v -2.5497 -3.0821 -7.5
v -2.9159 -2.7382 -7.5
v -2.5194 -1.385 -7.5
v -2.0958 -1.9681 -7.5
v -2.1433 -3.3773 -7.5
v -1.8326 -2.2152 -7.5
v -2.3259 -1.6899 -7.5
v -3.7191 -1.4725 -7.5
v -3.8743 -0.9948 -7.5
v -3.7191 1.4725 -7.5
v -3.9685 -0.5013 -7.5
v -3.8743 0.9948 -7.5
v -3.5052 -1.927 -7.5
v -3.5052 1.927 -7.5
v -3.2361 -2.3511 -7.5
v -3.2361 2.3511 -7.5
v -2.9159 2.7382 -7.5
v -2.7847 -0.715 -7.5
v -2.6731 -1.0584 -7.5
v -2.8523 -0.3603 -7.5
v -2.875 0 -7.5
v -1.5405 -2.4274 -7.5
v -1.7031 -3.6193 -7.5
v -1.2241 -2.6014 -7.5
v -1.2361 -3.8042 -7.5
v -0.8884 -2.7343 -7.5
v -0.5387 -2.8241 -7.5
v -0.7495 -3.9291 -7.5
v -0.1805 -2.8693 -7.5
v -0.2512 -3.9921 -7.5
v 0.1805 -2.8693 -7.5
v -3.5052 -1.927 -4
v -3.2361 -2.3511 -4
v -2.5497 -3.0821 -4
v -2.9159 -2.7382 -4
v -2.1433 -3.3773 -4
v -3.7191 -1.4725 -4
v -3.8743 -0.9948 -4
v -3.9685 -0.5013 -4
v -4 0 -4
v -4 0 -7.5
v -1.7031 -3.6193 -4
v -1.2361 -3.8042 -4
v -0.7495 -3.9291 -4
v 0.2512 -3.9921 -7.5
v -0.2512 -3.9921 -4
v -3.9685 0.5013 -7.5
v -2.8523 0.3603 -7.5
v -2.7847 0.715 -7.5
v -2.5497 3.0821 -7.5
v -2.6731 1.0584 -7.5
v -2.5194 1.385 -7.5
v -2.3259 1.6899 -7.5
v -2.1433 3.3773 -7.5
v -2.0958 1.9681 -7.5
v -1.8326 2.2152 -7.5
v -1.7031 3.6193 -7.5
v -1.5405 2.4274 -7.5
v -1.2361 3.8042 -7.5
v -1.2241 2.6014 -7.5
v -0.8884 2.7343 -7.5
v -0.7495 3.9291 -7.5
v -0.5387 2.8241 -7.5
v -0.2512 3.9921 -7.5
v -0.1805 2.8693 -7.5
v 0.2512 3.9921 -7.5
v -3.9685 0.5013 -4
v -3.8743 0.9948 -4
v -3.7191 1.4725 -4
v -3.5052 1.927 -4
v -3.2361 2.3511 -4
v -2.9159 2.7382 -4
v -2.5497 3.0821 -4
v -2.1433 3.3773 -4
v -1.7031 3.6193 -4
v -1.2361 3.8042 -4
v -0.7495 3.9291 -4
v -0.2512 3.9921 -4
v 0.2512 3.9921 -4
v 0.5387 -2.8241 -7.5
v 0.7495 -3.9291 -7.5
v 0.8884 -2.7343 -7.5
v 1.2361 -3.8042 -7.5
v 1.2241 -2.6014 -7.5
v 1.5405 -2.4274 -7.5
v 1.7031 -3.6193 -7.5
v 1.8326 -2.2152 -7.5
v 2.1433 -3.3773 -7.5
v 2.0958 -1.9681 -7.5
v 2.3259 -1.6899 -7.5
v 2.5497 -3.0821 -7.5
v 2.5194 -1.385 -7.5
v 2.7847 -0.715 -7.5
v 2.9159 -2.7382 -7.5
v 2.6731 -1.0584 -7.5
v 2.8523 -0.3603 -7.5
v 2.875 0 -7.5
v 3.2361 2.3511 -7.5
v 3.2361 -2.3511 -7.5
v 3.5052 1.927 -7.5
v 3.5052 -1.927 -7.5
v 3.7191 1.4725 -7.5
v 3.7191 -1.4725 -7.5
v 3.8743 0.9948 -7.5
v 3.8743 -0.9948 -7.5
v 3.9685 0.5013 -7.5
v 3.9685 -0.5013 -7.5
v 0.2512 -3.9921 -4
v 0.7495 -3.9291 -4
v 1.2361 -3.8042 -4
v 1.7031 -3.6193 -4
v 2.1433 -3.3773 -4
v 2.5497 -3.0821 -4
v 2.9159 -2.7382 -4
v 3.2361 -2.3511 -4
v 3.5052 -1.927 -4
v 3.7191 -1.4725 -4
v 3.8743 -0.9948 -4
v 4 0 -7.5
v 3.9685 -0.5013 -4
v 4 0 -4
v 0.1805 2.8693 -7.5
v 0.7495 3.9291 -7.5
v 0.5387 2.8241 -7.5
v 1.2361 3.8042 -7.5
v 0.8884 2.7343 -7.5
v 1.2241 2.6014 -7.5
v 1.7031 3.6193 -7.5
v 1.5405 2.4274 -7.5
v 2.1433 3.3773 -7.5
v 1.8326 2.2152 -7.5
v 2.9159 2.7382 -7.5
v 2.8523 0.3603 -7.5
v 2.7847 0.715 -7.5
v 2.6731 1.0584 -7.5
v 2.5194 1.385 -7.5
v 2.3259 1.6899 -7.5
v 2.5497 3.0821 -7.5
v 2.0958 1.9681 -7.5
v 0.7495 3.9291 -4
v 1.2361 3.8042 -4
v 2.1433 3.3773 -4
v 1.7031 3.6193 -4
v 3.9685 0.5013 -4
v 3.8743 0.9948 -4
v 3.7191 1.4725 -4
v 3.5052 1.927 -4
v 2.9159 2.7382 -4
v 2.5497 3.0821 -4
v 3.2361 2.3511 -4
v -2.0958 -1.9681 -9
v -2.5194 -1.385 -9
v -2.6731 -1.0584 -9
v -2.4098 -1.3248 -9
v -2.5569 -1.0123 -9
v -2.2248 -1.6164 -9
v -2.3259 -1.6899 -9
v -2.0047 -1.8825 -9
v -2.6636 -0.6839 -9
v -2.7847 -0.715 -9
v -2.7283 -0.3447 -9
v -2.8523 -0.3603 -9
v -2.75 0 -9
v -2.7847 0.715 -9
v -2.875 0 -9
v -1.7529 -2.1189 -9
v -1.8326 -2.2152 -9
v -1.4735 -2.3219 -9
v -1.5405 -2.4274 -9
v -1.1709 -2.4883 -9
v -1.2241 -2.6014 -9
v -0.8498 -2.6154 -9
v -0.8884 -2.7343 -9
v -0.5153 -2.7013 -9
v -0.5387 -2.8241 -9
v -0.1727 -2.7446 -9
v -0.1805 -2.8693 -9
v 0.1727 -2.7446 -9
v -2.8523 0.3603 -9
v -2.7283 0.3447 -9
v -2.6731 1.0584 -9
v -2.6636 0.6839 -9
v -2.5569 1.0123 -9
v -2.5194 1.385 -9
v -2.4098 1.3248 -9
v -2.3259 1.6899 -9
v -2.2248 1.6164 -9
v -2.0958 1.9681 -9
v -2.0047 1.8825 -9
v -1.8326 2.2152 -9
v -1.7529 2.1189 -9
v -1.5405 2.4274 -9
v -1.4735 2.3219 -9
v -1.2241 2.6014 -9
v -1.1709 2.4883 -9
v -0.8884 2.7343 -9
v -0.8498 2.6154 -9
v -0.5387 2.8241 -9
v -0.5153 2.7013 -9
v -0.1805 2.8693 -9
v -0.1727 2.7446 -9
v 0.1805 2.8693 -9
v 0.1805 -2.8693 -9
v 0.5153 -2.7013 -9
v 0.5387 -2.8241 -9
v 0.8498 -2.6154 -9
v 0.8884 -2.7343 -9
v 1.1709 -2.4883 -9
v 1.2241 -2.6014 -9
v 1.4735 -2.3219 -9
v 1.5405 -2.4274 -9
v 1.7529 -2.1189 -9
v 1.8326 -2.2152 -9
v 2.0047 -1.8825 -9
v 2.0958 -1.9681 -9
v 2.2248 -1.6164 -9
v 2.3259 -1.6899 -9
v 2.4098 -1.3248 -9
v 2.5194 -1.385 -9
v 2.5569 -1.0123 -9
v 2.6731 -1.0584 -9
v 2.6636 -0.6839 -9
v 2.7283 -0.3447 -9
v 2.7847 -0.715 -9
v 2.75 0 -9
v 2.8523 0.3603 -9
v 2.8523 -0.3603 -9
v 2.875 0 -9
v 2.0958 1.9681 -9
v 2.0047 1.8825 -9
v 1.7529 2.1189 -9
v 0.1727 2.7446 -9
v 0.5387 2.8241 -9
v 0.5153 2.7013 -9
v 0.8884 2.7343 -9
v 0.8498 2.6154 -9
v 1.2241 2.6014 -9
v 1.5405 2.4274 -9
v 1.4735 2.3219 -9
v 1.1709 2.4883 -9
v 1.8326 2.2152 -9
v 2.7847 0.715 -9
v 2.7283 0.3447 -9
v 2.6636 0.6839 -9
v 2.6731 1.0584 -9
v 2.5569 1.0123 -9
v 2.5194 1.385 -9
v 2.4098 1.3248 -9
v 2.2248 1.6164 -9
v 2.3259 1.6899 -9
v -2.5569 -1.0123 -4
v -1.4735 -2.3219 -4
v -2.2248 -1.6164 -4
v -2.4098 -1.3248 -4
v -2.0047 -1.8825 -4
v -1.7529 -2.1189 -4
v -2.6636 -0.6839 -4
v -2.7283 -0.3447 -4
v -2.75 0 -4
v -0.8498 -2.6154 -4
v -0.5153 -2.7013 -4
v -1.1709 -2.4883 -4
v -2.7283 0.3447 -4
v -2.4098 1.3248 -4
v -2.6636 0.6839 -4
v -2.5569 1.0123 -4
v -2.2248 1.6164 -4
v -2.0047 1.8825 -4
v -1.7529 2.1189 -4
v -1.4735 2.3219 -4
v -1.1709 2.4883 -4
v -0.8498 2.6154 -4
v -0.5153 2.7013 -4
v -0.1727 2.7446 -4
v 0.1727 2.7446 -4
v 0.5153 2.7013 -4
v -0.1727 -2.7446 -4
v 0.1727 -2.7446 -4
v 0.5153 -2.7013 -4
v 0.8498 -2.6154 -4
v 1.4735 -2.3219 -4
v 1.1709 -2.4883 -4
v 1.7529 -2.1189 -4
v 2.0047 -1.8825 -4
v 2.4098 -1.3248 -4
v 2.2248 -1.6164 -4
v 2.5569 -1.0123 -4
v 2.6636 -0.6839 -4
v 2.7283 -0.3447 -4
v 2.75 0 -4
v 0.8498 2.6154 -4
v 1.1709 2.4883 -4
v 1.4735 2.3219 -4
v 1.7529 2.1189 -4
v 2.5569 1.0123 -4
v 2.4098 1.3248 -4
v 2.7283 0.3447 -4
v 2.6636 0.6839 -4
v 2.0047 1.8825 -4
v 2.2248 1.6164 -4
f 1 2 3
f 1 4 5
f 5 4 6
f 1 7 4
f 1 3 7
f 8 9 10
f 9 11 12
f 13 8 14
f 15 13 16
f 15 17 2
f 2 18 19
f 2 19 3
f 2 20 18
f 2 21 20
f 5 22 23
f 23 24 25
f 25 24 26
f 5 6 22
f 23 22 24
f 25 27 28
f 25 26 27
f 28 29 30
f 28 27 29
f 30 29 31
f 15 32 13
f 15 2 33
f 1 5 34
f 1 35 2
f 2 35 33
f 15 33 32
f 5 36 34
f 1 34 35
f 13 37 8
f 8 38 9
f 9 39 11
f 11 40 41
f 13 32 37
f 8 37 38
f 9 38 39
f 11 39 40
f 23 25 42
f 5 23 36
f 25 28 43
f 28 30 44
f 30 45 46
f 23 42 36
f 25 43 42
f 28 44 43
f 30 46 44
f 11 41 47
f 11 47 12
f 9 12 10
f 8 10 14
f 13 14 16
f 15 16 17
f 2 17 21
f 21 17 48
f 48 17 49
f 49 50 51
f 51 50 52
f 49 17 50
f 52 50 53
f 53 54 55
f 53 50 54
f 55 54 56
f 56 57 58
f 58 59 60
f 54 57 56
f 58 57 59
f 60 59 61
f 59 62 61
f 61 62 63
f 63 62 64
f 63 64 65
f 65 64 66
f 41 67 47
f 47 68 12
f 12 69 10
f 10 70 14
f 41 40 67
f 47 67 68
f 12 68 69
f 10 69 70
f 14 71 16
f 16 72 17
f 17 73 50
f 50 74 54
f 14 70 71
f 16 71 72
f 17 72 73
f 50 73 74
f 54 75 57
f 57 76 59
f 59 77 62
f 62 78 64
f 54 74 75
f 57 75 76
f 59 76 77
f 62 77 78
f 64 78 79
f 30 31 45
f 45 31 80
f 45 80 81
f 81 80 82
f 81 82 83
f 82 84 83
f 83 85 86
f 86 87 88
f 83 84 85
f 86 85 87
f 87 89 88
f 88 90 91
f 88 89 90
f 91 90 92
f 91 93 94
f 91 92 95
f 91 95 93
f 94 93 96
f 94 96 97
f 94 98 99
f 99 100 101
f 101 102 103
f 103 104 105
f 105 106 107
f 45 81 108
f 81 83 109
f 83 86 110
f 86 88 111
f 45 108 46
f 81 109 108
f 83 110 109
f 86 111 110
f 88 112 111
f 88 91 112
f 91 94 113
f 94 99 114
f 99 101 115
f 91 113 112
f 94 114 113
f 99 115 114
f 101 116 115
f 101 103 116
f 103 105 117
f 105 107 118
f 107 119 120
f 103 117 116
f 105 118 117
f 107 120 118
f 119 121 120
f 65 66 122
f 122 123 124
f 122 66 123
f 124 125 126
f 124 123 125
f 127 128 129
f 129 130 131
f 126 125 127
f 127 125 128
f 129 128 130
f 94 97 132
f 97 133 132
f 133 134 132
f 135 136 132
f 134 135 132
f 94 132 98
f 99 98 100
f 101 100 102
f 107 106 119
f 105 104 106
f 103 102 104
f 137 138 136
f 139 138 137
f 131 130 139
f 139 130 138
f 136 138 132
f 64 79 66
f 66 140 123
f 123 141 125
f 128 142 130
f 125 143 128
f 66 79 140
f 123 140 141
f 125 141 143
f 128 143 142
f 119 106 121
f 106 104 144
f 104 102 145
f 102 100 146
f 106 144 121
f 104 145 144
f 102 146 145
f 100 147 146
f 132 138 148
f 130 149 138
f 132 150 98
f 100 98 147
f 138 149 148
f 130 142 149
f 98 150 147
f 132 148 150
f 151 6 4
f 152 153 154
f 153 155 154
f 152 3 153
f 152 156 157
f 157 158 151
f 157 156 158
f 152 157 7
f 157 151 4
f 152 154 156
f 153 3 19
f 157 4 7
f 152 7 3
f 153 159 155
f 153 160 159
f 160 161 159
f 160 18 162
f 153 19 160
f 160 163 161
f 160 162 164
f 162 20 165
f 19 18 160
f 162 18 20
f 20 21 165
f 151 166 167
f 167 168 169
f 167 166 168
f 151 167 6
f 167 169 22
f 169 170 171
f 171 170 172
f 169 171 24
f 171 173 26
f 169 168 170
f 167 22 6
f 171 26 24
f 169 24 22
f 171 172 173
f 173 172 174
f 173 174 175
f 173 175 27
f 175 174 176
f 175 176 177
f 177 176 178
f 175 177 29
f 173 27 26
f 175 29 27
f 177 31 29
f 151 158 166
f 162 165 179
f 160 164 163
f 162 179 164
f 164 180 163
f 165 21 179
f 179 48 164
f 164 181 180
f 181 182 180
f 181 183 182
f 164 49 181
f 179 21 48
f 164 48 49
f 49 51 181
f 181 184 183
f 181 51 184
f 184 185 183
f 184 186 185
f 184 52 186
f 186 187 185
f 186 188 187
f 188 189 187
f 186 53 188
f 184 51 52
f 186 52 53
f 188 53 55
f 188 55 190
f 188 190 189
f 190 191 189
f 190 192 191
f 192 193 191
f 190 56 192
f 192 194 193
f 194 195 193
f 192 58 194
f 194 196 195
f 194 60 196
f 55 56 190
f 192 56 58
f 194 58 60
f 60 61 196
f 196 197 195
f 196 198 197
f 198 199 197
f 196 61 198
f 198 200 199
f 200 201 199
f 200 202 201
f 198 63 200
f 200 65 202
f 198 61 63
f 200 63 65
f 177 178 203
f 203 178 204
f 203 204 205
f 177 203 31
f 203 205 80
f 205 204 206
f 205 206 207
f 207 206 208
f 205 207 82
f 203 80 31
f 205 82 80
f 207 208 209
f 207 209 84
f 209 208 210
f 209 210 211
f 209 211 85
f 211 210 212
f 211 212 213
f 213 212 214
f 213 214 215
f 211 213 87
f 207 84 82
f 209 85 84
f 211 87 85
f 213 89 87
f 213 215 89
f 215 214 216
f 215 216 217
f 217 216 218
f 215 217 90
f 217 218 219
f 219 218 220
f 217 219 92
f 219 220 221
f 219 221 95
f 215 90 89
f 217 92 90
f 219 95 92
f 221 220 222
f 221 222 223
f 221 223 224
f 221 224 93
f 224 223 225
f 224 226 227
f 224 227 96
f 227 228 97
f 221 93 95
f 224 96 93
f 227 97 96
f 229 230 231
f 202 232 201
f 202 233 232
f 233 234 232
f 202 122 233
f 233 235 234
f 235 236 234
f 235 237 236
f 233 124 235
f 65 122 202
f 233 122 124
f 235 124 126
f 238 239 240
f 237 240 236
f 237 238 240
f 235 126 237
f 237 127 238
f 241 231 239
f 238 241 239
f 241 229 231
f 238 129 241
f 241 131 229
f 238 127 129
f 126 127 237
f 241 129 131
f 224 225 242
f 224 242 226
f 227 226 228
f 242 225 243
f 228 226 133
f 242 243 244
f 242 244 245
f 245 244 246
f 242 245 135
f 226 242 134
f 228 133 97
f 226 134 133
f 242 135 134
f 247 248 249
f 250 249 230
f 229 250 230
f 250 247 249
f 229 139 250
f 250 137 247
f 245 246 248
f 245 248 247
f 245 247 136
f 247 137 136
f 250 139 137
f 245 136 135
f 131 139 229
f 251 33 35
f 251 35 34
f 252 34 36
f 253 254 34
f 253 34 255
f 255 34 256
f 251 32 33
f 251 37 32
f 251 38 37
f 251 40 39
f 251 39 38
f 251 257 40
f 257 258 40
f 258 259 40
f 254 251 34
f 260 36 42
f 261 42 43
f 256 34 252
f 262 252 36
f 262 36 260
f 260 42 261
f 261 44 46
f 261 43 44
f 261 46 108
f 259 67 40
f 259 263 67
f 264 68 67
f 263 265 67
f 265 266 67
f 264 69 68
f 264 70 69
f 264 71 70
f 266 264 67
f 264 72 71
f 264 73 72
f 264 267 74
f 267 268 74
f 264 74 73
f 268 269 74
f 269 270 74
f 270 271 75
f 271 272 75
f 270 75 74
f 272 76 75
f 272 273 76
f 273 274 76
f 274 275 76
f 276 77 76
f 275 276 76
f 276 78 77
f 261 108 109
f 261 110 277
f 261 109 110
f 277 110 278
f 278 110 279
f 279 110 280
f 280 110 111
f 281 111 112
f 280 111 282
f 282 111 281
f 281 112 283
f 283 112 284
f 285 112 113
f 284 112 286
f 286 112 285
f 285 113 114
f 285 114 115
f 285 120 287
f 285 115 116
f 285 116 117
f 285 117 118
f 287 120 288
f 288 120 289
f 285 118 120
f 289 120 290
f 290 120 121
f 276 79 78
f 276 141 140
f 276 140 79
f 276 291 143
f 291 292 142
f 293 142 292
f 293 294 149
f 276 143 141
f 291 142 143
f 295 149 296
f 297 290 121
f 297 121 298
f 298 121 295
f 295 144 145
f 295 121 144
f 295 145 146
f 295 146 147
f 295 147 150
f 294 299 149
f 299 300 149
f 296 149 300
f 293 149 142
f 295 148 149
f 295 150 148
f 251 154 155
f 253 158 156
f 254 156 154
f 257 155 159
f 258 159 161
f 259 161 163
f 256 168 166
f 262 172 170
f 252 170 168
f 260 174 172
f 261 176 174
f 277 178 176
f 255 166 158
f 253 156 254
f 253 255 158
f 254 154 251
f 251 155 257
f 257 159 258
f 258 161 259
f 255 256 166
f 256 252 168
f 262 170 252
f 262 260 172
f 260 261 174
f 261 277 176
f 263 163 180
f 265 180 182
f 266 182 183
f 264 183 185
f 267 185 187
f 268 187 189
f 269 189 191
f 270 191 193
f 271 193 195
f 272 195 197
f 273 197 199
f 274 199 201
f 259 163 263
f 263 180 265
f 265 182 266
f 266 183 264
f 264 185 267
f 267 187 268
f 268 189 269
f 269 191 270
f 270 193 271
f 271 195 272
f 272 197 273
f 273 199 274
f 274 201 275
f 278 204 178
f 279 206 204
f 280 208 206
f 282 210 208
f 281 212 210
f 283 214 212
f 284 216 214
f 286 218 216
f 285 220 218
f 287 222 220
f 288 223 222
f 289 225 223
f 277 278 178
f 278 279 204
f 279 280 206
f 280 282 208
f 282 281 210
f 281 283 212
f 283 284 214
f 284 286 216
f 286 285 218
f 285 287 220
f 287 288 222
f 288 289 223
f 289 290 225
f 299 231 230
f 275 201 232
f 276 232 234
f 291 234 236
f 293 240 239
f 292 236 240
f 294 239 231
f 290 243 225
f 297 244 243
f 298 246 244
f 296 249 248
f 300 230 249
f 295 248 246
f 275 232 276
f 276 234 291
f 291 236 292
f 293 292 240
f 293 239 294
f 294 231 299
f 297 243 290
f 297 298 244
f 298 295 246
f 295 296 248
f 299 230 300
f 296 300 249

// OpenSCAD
$fn = 50;

difference() {
	union() {
		translate(v = [0, 0, -7.5]) {
			cylinder(h = 10.5, r = 4.0);
		}
		#translate(v = [0, 0, -9.0]) {
			cylinder(h = 9, r = 2.875);
		}
	}
	union() {
		translate(v = [0, 0, 0]) {
			rotate(a = [0, 0, 0]) {
				difference() {
					union() {
						translate(v = [0, 0, -4]) {
							linear_extrude(height = 4) {
								polygon(points = [[4.8468, 0.0], [2.4234000000000004, 4.197451927062417], [-2.423399999999999, 4.197451927062417], [-4.8468, 5.935618106107392e-16], [-2.423400000000002, -4.197451927062416], [2.423399999999997, -4.197451927062419]]);
							}
						}
					}
					union();
				}
			}
		}
		#cylinder(h = 3, r = 6.25);
		#translate(v = [0, 0, -100.0]) {
			cylinder(h = 200, r = 2.75);
		}
	}
}
